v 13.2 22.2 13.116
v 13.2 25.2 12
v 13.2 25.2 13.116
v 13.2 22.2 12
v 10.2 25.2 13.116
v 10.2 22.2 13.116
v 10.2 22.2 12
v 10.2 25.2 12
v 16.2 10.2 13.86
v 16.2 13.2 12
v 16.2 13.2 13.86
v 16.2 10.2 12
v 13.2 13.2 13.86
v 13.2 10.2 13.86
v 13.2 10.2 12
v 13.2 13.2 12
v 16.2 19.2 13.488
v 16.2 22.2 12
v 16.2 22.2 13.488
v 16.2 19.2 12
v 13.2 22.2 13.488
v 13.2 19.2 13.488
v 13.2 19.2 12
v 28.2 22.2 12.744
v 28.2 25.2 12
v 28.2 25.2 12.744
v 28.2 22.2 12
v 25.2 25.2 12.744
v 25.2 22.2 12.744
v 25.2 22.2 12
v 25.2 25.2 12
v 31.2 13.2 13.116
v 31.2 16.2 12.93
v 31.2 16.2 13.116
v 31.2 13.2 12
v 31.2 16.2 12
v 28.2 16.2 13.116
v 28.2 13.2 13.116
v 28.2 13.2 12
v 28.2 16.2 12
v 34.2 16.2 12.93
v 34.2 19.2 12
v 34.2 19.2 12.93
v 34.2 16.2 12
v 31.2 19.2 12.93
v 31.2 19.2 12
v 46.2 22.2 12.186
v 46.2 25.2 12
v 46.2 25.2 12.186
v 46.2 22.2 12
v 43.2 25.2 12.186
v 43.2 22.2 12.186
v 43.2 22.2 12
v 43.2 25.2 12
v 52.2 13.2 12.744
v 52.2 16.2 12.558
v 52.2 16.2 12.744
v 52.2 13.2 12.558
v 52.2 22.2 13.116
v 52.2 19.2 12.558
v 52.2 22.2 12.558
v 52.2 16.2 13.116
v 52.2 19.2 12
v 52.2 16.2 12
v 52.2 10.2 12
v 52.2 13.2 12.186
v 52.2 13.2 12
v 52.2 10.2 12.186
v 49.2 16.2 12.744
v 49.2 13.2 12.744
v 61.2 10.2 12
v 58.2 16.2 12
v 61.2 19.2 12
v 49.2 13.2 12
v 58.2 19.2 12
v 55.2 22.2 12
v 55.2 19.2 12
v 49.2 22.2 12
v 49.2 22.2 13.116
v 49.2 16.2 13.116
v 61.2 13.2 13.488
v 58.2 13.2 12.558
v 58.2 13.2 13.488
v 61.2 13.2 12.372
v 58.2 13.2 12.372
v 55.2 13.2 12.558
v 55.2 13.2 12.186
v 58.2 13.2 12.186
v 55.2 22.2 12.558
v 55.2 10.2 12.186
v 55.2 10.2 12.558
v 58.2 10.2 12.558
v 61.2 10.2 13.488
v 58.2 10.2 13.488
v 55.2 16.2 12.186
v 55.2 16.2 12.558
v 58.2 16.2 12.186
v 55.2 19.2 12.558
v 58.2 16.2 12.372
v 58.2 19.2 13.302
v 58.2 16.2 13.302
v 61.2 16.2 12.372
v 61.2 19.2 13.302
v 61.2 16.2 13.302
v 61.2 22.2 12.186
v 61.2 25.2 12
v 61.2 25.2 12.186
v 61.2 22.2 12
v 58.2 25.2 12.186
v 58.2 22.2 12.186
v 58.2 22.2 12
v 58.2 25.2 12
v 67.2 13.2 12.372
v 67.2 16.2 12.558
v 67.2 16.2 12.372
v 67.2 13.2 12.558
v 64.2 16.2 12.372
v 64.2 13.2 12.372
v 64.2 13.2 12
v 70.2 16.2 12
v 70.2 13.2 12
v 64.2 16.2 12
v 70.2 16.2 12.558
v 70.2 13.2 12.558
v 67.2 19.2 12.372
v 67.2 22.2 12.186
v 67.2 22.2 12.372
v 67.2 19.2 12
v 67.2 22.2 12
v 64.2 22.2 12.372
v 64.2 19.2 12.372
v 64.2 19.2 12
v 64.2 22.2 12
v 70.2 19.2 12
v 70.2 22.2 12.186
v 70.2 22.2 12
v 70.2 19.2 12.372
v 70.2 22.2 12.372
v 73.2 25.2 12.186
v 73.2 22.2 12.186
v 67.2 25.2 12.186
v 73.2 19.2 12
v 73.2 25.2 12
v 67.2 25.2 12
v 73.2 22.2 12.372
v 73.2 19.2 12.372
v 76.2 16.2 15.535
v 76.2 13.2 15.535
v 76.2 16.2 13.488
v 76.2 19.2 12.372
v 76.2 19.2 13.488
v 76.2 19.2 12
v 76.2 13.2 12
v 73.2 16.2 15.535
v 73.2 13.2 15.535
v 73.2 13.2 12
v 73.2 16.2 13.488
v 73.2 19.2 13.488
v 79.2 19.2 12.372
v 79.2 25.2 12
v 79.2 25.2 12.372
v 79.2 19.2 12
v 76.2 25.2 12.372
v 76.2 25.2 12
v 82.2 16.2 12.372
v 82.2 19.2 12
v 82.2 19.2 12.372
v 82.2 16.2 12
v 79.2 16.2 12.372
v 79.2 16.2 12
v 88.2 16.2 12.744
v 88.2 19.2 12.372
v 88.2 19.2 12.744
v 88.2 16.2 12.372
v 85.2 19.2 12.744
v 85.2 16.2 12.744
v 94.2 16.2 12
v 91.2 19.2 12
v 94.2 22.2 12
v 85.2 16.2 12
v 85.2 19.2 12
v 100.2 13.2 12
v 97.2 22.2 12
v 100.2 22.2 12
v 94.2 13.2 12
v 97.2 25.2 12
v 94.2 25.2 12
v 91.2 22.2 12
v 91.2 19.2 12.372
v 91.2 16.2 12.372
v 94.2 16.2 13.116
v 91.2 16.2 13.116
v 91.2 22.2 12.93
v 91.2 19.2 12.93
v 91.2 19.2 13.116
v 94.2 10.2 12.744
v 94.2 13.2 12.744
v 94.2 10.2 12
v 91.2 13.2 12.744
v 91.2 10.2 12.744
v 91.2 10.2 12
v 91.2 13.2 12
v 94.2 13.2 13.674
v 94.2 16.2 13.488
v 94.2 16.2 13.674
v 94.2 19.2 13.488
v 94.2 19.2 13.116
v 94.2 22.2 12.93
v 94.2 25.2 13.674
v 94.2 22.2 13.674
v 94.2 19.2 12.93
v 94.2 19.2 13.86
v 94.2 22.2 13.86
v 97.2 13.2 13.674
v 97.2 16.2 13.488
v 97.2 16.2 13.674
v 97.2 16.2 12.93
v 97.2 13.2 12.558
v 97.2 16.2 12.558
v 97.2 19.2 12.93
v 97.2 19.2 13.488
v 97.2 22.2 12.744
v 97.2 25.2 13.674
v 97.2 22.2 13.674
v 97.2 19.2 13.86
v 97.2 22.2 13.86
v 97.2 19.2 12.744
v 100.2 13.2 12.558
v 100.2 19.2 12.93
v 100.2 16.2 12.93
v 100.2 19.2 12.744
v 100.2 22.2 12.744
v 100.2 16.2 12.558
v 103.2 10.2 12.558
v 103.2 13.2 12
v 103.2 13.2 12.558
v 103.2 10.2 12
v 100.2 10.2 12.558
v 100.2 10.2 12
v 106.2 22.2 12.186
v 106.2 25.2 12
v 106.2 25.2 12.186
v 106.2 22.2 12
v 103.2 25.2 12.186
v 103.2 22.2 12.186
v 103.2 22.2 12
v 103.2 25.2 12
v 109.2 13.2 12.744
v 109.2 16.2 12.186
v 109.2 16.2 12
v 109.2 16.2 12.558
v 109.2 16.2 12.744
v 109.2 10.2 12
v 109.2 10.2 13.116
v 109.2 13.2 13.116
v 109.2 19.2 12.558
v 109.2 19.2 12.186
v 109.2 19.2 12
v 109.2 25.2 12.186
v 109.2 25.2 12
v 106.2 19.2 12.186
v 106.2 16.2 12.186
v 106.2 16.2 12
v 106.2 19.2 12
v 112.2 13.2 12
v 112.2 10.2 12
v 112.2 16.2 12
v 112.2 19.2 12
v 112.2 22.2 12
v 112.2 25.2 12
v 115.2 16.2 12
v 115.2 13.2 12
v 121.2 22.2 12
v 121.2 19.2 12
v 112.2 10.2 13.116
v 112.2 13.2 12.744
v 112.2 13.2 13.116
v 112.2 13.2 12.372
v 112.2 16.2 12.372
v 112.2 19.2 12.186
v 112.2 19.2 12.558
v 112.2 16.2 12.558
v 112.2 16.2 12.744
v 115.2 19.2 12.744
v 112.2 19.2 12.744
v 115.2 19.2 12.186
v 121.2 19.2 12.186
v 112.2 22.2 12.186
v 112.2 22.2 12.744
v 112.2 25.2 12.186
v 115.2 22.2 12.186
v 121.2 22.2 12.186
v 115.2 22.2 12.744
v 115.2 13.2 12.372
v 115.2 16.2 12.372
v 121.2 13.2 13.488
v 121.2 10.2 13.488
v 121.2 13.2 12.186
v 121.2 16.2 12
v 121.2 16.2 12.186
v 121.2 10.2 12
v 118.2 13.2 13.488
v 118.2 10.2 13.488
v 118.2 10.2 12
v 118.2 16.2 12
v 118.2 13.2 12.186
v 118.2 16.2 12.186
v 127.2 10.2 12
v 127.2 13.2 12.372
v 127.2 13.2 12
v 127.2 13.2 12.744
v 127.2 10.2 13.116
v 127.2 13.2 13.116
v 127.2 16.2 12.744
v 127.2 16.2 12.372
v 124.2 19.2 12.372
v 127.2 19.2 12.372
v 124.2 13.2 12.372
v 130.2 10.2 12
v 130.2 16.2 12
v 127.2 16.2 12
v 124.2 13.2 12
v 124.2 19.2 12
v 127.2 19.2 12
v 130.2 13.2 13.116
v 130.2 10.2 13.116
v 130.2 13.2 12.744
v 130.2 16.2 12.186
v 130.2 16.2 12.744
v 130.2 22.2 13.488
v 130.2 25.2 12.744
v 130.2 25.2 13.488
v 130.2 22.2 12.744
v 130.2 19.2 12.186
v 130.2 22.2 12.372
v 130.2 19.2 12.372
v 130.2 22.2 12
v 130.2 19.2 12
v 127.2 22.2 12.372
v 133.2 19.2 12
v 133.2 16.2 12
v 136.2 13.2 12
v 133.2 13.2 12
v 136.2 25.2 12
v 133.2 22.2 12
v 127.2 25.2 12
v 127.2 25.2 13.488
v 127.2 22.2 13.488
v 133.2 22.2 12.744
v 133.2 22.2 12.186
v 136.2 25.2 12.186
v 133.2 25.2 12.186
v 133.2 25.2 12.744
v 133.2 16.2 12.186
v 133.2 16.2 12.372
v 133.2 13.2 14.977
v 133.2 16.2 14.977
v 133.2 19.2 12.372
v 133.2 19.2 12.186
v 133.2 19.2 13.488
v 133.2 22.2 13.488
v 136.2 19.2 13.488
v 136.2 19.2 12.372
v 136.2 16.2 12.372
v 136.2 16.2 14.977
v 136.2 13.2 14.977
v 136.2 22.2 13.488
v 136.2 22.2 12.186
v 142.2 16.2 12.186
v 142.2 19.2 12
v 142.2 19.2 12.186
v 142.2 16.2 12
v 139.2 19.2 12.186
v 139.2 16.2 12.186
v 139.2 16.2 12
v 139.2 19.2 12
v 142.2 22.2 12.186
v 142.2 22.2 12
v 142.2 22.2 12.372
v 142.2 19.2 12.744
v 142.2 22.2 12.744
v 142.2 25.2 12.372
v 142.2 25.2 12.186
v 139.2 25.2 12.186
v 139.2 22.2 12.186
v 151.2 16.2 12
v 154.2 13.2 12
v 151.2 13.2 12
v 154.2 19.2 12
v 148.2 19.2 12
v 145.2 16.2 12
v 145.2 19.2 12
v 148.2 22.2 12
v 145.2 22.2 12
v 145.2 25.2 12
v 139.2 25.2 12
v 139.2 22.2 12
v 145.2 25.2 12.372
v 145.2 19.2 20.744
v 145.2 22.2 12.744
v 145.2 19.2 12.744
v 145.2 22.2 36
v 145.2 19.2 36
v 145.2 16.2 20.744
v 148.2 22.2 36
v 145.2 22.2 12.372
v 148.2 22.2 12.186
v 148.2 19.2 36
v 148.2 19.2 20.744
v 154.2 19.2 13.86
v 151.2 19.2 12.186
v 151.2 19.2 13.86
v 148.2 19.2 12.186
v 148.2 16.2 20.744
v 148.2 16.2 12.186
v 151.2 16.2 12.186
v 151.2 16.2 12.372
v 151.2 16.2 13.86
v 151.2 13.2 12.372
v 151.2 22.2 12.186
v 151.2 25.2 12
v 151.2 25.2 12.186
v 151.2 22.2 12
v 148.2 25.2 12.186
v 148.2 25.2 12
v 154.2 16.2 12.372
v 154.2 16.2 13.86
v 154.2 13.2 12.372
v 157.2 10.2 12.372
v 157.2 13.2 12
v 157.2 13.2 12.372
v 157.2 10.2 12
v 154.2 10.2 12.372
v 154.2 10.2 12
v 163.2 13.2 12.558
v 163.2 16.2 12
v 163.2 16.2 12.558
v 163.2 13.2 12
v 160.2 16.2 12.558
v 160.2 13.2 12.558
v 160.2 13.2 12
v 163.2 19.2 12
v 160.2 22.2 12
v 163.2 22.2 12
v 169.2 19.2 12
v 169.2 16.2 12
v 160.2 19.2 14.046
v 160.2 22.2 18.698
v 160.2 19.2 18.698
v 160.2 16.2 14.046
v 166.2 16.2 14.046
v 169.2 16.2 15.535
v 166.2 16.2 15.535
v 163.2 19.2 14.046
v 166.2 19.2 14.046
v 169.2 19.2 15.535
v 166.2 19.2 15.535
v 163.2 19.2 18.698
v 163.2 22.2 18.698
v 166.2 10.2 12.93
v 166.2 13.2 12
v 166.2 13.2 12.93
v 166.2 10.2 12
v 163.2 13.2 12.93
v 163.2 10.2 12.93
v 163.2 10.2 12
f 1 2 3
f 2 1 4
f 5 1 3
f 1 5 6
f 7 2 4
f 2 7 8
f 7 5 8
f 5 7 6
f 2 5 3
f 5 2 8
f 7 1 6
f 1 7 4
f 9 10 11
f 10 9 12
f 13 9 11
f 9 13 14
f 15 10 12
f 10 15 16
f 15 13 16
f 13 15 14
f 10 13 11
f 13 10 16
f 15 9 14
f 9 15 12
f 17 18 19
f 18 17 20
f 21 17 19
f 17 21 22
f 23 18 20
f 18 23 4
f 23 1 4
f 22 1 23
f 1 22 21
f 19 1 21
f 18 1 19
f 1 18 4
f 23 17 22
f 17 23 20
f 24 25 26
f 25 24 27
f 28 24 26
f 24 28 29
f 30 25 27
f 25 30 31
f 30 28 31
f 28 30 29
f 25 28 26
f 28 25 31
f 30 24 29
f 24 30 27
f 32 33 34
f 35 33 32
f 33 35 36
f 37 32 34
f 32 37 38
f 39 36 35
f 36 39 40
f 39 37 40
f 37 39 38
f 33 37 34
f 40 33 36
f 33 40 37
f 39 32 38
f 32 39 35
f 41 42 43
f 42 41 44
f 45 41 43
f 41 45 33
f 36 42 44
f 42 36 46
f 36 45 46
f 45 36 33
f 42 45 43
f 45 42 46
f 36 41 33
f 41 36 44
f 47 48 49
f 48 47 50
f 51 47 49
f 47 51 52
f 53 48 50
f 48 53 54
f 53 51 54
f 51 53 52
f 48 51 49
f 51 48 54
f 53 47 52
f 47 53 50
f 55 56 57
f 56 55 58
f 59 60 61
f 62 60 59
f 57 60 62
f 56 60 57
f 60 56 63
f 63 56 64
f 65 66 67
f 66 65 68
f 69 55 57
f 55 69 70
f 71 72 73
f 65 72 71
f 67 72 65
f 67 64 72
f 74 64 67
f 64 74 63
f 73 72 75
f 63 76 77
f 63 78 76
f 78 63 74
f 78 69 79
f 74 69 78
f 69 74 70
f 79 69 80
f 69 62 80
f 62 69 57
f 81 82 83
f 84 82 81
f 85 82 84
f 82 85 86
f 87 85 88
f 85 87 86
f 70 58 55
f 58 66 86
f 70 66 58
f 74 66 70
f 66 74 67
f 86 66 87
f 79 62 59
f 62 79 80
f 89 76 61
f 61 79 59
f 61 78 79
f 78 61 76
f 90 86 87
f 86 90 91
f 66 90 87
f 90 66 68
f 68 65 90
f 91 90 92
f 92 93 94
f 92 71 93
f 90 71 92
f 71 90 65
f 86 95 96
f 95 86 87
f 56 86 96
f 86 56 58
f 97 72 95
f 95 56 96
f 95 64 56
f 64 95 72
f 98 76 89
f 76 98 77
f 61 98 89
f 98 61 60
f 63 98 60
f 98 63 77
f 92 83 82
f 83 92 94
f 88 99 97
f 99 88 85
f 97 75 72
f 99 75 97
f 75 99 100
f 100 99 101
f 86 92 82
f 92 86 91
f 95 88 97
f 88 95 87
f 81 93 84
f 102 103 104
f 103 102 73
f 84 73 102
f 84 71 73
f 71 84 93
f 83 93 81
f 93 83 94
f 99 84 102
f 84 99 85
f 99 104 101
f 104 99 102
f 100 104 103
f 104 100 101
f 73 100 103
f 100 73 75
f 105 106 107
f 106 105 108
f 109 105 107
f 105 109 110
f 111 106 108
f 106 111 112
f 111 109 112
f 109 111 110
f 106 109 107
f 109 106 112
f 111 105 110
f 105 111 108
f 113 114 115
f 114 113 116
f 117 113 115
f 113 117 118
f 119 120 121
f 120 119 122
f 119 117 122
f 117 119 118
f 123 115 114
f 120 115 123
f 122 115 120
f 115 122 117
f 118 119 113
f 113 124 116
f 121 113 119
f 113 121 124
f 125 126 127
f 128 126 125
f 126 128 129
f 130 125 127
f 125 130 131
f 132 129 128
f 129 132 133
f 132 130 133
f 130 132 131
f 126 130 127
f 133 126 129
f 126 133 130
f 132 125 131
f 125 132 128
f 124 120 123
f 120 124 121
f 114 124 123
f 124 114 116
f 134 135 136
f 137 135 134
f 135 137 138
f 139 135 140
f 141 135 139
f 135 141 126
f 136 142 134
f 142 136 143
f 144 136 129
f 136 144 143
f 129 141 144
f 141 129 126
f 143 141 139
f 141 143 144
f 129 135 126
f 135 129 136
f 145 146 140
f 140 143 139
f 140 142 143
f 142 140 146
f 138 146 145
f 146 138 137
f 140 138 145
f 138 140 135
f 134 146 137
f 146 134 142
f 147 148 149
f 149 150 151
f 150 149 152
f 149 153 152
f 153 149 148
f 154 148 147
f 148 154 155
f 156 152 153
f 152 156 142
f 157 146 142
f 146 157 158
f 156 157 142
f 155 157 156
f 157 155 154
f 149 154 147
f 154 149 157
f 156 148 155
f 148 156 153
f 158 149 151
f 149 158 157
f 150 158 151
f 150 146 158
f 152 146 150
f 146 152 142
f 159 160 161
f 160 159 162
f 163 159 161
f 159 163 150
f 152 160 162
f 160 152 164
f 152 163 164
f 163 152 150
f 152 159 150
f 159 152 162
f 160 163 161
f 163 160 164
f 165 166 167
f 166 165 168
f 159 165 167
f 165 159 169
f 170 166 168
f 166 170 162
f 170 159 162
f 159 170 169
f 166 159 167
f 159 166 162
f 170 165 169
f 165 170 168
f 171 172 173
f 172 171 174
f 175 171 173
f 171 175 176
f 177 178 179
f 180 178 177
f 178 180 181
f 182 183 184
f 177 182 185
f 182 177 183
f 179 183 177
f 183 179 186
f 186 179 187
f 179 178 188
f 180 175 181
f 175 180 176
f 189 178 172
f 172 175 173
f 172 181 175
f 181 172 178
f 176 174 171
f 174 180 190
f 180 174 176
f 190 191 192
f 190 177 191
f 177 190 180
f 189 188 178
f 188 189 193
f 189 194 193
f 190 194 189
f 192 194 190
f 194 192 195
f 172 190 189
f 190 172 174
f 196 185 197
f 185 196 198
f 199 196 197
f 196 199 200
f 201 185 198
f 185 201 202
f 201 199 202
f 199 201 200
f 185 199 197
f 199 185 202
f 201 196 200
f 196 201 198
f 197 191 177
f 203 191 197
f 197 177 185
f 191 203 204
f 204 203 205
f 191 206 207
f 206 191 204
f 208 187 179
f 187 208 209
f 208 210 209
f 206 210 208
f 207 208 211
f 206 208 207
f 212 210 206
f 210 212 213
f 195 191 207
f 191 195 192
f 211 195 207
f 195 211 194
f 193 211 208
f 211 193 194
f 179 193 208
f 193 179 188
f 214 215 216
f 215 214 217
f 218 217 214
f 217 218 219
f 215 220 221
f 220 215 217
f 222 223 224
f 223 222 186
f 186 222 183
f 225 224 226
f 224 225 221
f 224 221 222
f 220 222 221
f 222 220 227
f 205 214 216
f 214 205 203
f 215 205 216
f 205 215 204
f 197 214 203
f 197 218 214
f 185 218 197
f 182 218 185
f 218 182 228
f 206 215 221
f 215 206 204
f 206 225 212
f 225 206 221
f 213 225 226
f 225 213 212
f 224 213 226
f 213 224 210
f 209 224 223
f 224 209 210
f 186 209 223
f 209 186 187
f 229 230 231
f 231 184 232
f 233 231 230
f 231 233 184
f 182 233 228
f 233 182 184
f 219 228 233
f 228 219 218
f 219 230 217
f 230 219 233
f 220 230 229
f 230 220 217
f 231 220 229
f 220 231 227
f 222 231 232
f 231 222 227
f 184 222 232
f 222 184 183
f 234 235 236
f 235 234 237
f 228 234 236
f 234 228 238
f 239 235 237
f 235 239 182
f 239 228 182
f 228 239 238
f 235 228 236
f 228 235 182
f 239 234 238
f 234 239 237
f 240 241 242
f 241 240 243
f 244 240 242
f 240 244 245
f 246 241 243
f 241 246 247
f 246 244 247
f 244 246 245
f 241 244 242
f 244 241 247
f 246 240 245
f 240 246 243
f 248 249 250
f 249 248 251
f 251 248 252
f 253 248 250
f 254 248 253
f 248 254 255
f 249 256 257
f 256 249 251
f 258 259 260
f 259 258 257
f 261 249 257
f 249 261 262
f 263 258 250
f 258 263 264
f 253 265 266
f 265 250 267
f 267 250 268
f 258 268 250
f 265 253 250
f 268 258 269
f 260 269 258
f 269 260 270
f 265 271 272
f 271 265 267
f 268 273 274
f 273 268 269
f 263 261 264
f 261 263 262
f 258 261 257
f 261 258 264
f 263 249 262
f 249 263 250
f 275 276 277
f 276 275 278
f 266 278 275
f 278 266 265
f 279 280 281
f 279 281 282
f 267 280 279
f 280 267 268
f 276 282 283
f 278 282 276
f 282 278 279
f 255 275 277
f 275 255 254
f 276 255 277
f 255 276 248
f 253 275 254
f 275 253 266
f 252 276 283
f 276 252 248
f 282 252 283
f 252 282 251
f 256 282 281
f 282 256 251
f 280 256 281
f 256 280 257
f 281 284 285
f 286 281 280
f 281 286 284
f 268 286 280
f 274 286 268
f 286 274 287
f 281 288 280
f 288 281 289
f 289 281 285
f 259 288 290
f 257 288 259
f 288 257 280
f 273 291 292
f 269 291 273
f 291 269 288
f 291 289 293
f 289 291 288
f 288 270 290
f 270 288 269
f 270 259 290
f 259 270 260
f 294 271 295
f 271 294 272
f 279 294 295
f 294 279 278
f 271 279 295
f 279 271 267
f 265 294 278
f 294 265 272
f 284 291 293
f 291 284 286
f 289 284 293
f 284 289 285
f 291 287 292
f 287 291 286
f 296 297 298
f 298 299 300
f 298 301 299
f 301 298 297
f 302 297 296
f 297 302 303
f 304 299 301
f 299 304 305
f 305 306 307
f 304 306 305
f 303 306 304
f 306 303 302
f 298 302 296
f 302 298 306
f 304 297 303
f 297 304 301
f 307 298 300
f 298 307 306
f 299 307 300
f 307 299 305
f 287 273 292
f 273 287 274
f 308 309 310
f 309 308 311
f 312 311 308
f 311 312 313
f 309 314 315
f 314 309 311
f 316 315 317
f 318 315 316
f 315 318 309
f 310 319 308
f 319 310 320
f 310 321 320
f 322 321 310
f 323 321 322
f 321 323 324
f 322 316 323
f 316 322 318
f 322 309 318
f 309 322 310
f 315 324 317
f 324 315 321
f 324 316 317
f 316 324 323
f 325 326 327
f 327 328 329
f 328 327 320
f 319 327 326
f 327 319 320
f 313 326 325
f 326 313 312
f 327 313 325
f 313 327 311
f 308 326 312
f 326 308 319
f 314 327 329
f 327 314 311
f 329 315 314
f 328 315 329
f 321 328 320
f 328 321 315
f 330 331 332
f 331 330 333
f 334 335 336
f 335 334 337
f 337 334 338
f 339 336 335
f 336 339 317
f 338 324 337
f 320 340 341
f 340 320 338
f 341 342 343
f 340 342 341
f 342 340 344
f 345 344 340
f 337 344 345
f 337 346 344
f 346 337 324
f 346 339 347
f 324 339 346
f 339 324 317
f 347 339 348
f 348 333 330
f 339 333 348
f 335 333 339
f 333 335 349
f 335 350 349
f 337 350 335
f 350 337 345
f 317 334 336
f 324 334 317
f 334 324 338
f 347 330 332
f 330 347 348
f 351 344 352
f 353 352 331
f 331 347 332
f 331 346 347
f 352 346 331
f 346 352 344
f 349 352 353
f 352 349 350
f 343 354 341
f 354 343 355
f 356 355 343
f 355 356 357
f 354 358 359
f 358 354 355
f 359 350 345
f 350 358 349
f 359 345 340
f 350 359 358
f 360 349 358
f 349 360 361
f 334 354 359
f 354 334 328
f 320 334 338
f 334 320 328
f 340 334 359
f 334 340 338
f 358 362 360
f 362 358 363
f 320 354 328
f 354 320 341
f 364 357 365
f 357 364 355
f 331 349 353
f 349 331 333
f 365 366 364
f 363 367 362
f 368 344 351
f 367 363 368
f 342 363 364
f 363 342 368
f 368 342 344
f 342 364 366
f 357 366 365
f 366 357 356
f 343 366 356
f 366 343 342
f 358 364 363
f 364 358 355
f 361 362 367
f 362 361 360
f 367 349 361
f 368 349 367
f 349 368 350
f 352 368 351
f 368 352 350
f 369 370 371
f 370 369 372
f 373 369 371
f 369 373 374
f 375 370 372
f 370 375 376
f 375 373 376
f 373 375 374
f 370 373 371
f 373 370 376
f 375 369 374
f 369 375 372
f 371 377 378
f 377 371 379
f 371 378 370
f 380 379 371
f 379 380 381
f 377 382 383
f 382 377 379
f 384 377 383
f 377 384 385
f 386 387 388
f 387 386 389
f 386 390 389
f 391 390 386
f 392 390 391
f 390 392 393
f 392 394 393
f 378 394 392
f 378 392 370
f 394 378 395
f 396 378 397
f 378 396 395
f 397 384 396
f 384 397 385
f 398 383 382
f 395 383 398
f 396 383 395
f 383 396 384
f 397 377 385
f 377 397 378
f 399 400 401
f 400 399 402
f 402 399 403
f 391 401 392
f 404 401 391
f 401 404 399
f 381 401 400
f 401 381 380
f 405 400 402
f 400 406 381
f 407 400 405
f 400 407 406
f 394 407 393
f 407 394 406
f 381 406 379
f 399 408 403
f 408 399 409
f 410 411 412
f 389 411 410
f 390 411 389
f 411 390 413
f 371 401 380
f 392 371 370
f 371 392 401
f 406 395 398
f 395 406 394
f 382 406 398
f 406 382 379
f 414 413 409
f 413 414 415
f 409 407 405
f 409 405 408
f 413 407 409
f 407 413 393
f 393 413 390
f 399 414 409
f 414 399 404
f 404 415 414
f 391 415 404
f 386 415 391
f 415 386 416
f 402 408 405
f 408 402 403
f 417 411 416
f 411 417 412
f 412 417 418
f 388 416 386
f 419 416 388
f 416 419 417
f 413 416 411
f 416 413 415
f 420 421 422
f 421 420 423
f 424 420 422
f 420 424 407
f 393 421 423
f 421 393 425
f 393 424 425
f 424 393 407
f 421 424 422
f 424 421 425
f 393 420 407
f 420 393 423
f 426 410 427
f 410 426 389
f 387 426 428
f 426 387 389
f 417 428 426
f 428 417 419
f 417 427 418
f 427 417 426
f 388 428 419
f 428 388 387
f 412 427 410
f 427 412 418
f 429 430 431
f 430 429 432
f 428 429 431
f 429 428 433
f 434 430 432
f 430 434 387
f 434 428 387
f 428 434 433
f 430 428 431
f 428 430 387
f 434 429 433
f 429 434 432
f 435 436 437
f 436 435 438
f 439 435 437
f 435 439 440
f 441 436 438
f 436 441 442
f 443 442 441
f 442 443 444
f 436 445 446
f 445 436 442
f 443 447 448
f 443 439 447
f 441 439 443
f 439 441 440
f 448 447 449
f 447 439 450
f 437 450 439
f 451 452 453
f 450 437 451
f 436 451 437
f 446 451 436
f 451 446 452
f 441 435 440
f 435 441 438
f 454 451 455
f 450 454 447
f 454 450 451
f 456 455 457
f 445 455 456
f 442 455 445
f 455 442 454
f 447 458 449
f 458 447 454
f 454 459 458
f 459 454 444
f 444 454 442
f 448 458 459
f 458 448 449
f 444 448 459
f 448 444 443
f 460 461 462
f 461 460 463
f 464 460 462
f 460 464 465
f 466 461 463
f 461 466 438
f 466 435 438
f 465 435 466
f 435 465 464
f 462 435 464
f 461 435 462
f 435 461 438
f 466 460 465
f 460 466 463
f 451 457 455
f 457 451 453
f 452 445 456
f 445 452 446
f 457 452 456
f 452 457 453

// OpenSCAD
union() {
	translate(v = [10.200000000000001, 22.200000000000003, 12.0]) {
		cube(size = [3.0, 3.0, 1.1162790697674418]);
	}
	translate(v = [13.200000000000001, 10.200000000000001, 12.0]) {
		cube(size = [3.0, 3.0, 1.8604651162790697]);
	}
	translate(v = [13.200000000000001, 19.200000000000003, 12.0]) {
		cube(size = [3.0, 3.0, 1.4883720930232558]);
	}
	translate(v = [25.200000000000003, 22.200000000000003, 12.0]) {
		cube(size = [3.0, 3.0, 0.7441860465116279]);
	}
	translate(v = [28.200000000000003, 13.200000000000001, 12.0]) {
		cube(size = [3.0, 3.0, 1.1162790697674418]);
	}
	translate(v = [31.200000000000003, 16.200000000000003, 12.0]) {
		cube(size = [3.0, 3.0, 0.9302325581395349]);
	}
	translate(v = [43.2, 22.200000000000003, 12.0]) {
		cube(size = [3.0, 3.0, 0.18604651162790697]);
	}
	translate(v = [49.2, 13.200000000000001, 12.0]) {
		cube(size = [3.0, 3.0, 0.7441860465116279]);
	}
	translate(v = [49.2, 16.200000000000003, 12.0]) {
		cube(size = [3.0, 3.0, 1.1162790697674418]);
	}
	translate(v = [49.2, 19.200000000000003, 12.0]) {
		cube(size = [3.0, 3.0, 1.1162790697674418]);
	}
	translate(v = [52.2, 10.200000000000001, 12.0]) {
		cube(size = [3.0, 3.0, 0.18604651162790697]);
	}
	translate(v = [52.2, 13.200000000000001, 12.0]) {
		cube(size = [3.0, 3.0, 0.5581395348837209]);
	}
	translate(v = [52.2, 19.200000000000003, 12.0]) {
		cube(size = [3.0, 3.0, 0.5581395348837209]);
	}
	translate(v = [55.2, 10.200000000000001, 12.0]) {
		cube(size = [3.0, 3.0, 0.5581395348837209]);
	}
	translate(v = [55.2, 13.200000000000001, 12.0]) {
		cube(size = [3.0, 3.0, 0.18604651162790697]);
	}
	translate(v = [58.2, 10.200000000000001, 12.0]) {
		cube(size = [3.0, 3.0, 1.4883720930232558]);
	}
	translate(v = [58.2, 13.200000000000001, 12.0]) {
		cube(size = [3.0, 3.0, 0.37209302325581395]);
	}
	translate(v = [58.2, 16.200000000000003, 12.0]) {
		cube(size = [3.0, 3.0, 1.302325581395349]);
	}
	translate(v = [58.2, 22.200000000000003, 12.0]) {
		cube(size = [3.0, 3.0, 0.18604651162790697]);
	}
	translate(v = [64.2, 13.200000000000001, 12.0]) {
		cube(size = [3.0, 3.0, 0.37209302325581395]);
	}
	translate(v = [64.2, 19.200000000000003, 12.0]) {
		cube(size = [3.0, 3.0, 0.37209302325581395]);
	}
	translate(v = [67.2, 13.200000000000001, 12.0]) {
		cube(size = [3.0, 3.0, 0.5581395348837209]);
	}
	translate(v = [67.2, 22.200000000000003, 12.0]) {
		cube(size = [3.0, 3.0, 0.18604651162790697]);
	}
	translate(v = [70.2, 19.200000000000003, 12.0]) {
		cube(size = [3.0, 3.0, 0.37209302325581395]);
	}
	translate(v = [70.2, 22.200000000000003, 12.0]) {
		cube(size = [3.0, 3.0, 0.18604651162790697]);
	}
	translate(v = [73.2, 13.200000000000001, 12.0]) {
		cube(size = [3.0, 3.0, 3.5348837209302326]);
	}
	translate(v = [73.2, 16.200000000000003, 12.0]) {
		cube(size = [3.0, 3.0, 1.4883720930232558]);
	}
	translate(v = [76.2, 19.200000000000003, 12.0]) {
		cube(size = [3.0, 3.0, 0.37209302325581395]);
	}
	translate(v = [76.2, 22.200000000000003, 12.0]) {
		cube(size = [3.0, 3.0, 0.37209302325581395]);
	}
	translate(v = [79.2, 16.200000000000003, 12.0]) {
		cube(size = [3.0, 3.0, 0.37209302325581395]);
	}
	translate(v = [85.2, 16.200000000000003, 12.0]) {
		cube(size = [3.0, 3.0, 0.7441860465116279]);
	}
	translate(v = [88.2, 16.200000000000003, 12.0]) {
		cube(size = [3.0, 3.0, 0.37209302325581395]);
	}
	translate(v = [91.2, 10.200000000000001, 12.0]) {
		cube(size = [3.0, 3.0, 0.7441860465116279]);
	}
	translate(v = [91.2, 16.200000000000003, 12.0]) {
		cube(size = [3.0, 3.0, 1.1162790697674418]);
	}
	translate(v = [91.2, 19.200000000000003, 12.0]) {
		cube(size = [3.0, 3.0, 0.9302325581395349]);
	}
	translate(v = [94.2, 13.200000000000001, 12.0]) {
		cube(size = [3.0, 3.0, 1.6744186046511629]);
	}
	translate(v = [94.2, 16.200000000000003, 12.0]) {
		cube(size = [3.0, 3.0, 1.4883720930232558]);
	}
	translate(v = [94.2, 19.200000000000003, 12.0]) {
		cube(size = [3.0, 3.0, 1.8604651162790697]);
	}
	translate(v = [94.2, 22.200000000000003, 12.0]) {
		cube(size = [3.0, 3.0, 1.6744186046511629]);
	}
	translate(v = [97.2, 13.200000000000001, 12.0]) {
		cube(size = [3.0, 3.0, 0.5581395348837209]);
	}
	translate(v = [97.2, 16.200000000000003, 12.0]) {
		cube(size = [3.0, 3.0, 0.9302325581395349]);
	}
	translate(v = [97.2, 19.200000000000003, 12.0]) {
		cube(size = [3.0, 3.0, 0.7441860465116279]);
	}
	translate(v = [100.2, 10.200000000000001, 12.0]) {
		cube(size = [3.0, 3.0, 0.5581395348837209]);
	}
	translate(v = [103.2, 22.200000000000003, 12.0]) {
		cube(size = [3.0, 3.0, 0.18604651162790697]);
	}
	translate(v = [106.2, 16.200000000000003, 12.0]) {
		cube(size = [3.0, 3.0, 0.18604651162790697]);
	}
	translate(v = [109.2, 10.200000000000001, 12.0]) {
		cube(size = [3.0, 3.0, 1.1162790697674418]);
	}
	translate(v = [109.2, 13.200000000000001, 12.0]) {
		cube(size = [3.0, 3.0, 0.7441860465116279]);
	}
	translate(v = [109.2, 16.200000000000003, 12.0]) {
		cube(size = [3.0, 3.0, 0.5581395348837209]);
	}
	translate(v = [109.2, 19.200000000000003, 12.0]) {
		cube(size = [3.0, 3.0, 0.18604651162790697]);
	}
	translate(v = [109.2, 22.200000000000003, 12.0]) {
		cube(size = [3.0, 3.0, 0.18604651162790697]);
	}
	translate(v = [112.2, 13.200000000000001, 12.0]) {
		cube(size = [3.0, 3.0, 0.37209302325581395]);
	}
	translate(v = [112.2, 19.200000000000003, 12.0]) {
		cube(size = [3.0, 3.0, 0.7441860465116279]);
	}
	translate(v = [115.2, 19.200000000000003, 12.0]) {
		cube(size = [3.0, 3.0, 0.18604651162790697]);
	}
	translate(v = [118.2, 10.200000000000001, 12.0]) {
		cube(size = [3.0, 3.0, 1.4883720930232558]);
	}
	translate(v = [118.2, 13.200000000000001, 12.0]) {
		cube(size = [3.0, 3.0, 0.18604651162790697]);
	}
	translate(v = [118.2, 19.200000000000003, 12.0]) {
		cube(size = [3.0, 3.0, 0.18604651162790697]);
	}
	translate(v = [124.2, 13.200000000000001, 12.0]) {
		cube(size = [3.0, 3.0, 0.37209302325581395]);
	}
	translate(v = [124.2, 16.200000000000003, 12.0]) {
		cube(size = [3.0, 3.0, 0.37209302325581395]);
	}
	translate(v = [127.2, 10.200000000000001, 12.0]) {
		cube(size = [3.0, 3.0, 1.1162790697674418]);
	}
	translate(v = [127.2, 13.200000000000001, 12.0]) {
		cube(size = [3.0, 3.0, 0.7441860465116279]);
	}
	translate(v = [127.2, 19.200000000000003, 12.0]) {
		cube(size = [3.0, 3.0, 0.37209302325581395]);
	}
	translate(v = [127.2, 22.200000000000003, 12.0]) {
		cube(size = [3.0, 3.0, 1.4883720930232558]);
	}
	translate(v = [130.2, 16.200000000000003, 12.0]) {
		cube(size = [3.0, 3.0, 0.18604651162790697]);
	}
	translate(v = [130.2, 22.200000000000003, 12.0]) {
		cube(size = [3.0, 3.0, 0.7441860465116279]);
	}
	translate(v = [133.2, 13.200000000000001, 12.0]) {
		cube(size = [3.0, 3.0, 2.9767441860465116]);
	}
	translate(v = [133.2, 16.200000000000003, 12.0]) {
		cube(size = [3.0, 3.0, 0.37209302325581395]);
	}
	translate(v = [133.2, 19.200000000000003, 12.0]) {
		cube(size = [3.0, 3.0, 1.4883720930232558]);
	}
	translate(v = [133.2, 22.200000000000003, 12.0]) {
		cube(size = [3.0, 3.0, 0.18604651162790697]);
	}
	translate(v = [139.2, 16.200000000000003, 12.0]) {
		cube(size = [3.0, 3.0, 0.18604651162790697]);
	}
	translate(v = [139.2, 22.200000000000003, 12.0]) {
		cube(size = [3.0, 3.0, 0.18604651162790697]);
	}
	translate(v = [142.2, 19.200000000000003, 12.0]) {
		cube(size = [3.0, 3.0, 0.7441860465116279]);
	}
	translate(v = [142.2, 22.200000000000003, 12.0]) {
		cube(size = [3.0, 3.0, 0.37209302325581395]);
	}
	translate(v = [145.2, 16.200000000000003, 12.0]) {
		cube(size = [3.0, 3.0, 8.744186046511627]);
	}
	translate(v = [145.2, 19.200000000000003, 12.0]) {
		cube(size = [3.0, 3.0, 24.0]);
	}
	translate(v = [148.2, 16.200000000000003, 12.0]) {
		cube(size = [3.0, 3.0, 0.18604651162790697]);
	}
	translate(v = [148.2, 22.200000000000003, 12.0]) {
		cube(size = [3.0, 3.0, 0.18604651162790697]);
	}
	translate(v = [151.2, 13.200000000000001, 12.0]) {
		cube(size = [3.0, 3.0, 0.37209302325581395]);
	}
	translate(v = [151.2, 16.200000000000003, 12.0]) {
		cube(size = [3.0, 3.0, 1.8604651162790697]);
	}
	translate(v = [154.2, 10.200000000000001, 12.0]) {
		cube(size = [3.0, 3.0, 0.37209302325581395]);
	}
	translate(v = [160.2, 13.200000000000001, 12.0]) {
		cube(size = [3.0, 3.0, 0.5581395348837209]);
	}
	translate(v = [160.2, 16.200000000000003, 12.0]) {
		cube(size = [3.0, 3.0, 2.046511627906977]);
	}
	translate(v = [160.2, 19.200000000000003, 12.0]) {
		cube(size = [3.0, 3.0, 6.6976744186046515]);
	}
	translate(v = [163.2, 10.200000000000001, 12.0]) {
		cube(size = [3.0, 3.0, 0.9302325581395349]);
	}
	translate(v = [163.2, 16.200000000000003, 12.0]) {
		cube(size = [3.0, 3.0, 2.046511627906977]);
	}
	translate(v = [166.2, 16.200000000000003, 12.0]) {
		cube(size = [3.0, 3.0, 3.5348837209302326]);
	}
}
